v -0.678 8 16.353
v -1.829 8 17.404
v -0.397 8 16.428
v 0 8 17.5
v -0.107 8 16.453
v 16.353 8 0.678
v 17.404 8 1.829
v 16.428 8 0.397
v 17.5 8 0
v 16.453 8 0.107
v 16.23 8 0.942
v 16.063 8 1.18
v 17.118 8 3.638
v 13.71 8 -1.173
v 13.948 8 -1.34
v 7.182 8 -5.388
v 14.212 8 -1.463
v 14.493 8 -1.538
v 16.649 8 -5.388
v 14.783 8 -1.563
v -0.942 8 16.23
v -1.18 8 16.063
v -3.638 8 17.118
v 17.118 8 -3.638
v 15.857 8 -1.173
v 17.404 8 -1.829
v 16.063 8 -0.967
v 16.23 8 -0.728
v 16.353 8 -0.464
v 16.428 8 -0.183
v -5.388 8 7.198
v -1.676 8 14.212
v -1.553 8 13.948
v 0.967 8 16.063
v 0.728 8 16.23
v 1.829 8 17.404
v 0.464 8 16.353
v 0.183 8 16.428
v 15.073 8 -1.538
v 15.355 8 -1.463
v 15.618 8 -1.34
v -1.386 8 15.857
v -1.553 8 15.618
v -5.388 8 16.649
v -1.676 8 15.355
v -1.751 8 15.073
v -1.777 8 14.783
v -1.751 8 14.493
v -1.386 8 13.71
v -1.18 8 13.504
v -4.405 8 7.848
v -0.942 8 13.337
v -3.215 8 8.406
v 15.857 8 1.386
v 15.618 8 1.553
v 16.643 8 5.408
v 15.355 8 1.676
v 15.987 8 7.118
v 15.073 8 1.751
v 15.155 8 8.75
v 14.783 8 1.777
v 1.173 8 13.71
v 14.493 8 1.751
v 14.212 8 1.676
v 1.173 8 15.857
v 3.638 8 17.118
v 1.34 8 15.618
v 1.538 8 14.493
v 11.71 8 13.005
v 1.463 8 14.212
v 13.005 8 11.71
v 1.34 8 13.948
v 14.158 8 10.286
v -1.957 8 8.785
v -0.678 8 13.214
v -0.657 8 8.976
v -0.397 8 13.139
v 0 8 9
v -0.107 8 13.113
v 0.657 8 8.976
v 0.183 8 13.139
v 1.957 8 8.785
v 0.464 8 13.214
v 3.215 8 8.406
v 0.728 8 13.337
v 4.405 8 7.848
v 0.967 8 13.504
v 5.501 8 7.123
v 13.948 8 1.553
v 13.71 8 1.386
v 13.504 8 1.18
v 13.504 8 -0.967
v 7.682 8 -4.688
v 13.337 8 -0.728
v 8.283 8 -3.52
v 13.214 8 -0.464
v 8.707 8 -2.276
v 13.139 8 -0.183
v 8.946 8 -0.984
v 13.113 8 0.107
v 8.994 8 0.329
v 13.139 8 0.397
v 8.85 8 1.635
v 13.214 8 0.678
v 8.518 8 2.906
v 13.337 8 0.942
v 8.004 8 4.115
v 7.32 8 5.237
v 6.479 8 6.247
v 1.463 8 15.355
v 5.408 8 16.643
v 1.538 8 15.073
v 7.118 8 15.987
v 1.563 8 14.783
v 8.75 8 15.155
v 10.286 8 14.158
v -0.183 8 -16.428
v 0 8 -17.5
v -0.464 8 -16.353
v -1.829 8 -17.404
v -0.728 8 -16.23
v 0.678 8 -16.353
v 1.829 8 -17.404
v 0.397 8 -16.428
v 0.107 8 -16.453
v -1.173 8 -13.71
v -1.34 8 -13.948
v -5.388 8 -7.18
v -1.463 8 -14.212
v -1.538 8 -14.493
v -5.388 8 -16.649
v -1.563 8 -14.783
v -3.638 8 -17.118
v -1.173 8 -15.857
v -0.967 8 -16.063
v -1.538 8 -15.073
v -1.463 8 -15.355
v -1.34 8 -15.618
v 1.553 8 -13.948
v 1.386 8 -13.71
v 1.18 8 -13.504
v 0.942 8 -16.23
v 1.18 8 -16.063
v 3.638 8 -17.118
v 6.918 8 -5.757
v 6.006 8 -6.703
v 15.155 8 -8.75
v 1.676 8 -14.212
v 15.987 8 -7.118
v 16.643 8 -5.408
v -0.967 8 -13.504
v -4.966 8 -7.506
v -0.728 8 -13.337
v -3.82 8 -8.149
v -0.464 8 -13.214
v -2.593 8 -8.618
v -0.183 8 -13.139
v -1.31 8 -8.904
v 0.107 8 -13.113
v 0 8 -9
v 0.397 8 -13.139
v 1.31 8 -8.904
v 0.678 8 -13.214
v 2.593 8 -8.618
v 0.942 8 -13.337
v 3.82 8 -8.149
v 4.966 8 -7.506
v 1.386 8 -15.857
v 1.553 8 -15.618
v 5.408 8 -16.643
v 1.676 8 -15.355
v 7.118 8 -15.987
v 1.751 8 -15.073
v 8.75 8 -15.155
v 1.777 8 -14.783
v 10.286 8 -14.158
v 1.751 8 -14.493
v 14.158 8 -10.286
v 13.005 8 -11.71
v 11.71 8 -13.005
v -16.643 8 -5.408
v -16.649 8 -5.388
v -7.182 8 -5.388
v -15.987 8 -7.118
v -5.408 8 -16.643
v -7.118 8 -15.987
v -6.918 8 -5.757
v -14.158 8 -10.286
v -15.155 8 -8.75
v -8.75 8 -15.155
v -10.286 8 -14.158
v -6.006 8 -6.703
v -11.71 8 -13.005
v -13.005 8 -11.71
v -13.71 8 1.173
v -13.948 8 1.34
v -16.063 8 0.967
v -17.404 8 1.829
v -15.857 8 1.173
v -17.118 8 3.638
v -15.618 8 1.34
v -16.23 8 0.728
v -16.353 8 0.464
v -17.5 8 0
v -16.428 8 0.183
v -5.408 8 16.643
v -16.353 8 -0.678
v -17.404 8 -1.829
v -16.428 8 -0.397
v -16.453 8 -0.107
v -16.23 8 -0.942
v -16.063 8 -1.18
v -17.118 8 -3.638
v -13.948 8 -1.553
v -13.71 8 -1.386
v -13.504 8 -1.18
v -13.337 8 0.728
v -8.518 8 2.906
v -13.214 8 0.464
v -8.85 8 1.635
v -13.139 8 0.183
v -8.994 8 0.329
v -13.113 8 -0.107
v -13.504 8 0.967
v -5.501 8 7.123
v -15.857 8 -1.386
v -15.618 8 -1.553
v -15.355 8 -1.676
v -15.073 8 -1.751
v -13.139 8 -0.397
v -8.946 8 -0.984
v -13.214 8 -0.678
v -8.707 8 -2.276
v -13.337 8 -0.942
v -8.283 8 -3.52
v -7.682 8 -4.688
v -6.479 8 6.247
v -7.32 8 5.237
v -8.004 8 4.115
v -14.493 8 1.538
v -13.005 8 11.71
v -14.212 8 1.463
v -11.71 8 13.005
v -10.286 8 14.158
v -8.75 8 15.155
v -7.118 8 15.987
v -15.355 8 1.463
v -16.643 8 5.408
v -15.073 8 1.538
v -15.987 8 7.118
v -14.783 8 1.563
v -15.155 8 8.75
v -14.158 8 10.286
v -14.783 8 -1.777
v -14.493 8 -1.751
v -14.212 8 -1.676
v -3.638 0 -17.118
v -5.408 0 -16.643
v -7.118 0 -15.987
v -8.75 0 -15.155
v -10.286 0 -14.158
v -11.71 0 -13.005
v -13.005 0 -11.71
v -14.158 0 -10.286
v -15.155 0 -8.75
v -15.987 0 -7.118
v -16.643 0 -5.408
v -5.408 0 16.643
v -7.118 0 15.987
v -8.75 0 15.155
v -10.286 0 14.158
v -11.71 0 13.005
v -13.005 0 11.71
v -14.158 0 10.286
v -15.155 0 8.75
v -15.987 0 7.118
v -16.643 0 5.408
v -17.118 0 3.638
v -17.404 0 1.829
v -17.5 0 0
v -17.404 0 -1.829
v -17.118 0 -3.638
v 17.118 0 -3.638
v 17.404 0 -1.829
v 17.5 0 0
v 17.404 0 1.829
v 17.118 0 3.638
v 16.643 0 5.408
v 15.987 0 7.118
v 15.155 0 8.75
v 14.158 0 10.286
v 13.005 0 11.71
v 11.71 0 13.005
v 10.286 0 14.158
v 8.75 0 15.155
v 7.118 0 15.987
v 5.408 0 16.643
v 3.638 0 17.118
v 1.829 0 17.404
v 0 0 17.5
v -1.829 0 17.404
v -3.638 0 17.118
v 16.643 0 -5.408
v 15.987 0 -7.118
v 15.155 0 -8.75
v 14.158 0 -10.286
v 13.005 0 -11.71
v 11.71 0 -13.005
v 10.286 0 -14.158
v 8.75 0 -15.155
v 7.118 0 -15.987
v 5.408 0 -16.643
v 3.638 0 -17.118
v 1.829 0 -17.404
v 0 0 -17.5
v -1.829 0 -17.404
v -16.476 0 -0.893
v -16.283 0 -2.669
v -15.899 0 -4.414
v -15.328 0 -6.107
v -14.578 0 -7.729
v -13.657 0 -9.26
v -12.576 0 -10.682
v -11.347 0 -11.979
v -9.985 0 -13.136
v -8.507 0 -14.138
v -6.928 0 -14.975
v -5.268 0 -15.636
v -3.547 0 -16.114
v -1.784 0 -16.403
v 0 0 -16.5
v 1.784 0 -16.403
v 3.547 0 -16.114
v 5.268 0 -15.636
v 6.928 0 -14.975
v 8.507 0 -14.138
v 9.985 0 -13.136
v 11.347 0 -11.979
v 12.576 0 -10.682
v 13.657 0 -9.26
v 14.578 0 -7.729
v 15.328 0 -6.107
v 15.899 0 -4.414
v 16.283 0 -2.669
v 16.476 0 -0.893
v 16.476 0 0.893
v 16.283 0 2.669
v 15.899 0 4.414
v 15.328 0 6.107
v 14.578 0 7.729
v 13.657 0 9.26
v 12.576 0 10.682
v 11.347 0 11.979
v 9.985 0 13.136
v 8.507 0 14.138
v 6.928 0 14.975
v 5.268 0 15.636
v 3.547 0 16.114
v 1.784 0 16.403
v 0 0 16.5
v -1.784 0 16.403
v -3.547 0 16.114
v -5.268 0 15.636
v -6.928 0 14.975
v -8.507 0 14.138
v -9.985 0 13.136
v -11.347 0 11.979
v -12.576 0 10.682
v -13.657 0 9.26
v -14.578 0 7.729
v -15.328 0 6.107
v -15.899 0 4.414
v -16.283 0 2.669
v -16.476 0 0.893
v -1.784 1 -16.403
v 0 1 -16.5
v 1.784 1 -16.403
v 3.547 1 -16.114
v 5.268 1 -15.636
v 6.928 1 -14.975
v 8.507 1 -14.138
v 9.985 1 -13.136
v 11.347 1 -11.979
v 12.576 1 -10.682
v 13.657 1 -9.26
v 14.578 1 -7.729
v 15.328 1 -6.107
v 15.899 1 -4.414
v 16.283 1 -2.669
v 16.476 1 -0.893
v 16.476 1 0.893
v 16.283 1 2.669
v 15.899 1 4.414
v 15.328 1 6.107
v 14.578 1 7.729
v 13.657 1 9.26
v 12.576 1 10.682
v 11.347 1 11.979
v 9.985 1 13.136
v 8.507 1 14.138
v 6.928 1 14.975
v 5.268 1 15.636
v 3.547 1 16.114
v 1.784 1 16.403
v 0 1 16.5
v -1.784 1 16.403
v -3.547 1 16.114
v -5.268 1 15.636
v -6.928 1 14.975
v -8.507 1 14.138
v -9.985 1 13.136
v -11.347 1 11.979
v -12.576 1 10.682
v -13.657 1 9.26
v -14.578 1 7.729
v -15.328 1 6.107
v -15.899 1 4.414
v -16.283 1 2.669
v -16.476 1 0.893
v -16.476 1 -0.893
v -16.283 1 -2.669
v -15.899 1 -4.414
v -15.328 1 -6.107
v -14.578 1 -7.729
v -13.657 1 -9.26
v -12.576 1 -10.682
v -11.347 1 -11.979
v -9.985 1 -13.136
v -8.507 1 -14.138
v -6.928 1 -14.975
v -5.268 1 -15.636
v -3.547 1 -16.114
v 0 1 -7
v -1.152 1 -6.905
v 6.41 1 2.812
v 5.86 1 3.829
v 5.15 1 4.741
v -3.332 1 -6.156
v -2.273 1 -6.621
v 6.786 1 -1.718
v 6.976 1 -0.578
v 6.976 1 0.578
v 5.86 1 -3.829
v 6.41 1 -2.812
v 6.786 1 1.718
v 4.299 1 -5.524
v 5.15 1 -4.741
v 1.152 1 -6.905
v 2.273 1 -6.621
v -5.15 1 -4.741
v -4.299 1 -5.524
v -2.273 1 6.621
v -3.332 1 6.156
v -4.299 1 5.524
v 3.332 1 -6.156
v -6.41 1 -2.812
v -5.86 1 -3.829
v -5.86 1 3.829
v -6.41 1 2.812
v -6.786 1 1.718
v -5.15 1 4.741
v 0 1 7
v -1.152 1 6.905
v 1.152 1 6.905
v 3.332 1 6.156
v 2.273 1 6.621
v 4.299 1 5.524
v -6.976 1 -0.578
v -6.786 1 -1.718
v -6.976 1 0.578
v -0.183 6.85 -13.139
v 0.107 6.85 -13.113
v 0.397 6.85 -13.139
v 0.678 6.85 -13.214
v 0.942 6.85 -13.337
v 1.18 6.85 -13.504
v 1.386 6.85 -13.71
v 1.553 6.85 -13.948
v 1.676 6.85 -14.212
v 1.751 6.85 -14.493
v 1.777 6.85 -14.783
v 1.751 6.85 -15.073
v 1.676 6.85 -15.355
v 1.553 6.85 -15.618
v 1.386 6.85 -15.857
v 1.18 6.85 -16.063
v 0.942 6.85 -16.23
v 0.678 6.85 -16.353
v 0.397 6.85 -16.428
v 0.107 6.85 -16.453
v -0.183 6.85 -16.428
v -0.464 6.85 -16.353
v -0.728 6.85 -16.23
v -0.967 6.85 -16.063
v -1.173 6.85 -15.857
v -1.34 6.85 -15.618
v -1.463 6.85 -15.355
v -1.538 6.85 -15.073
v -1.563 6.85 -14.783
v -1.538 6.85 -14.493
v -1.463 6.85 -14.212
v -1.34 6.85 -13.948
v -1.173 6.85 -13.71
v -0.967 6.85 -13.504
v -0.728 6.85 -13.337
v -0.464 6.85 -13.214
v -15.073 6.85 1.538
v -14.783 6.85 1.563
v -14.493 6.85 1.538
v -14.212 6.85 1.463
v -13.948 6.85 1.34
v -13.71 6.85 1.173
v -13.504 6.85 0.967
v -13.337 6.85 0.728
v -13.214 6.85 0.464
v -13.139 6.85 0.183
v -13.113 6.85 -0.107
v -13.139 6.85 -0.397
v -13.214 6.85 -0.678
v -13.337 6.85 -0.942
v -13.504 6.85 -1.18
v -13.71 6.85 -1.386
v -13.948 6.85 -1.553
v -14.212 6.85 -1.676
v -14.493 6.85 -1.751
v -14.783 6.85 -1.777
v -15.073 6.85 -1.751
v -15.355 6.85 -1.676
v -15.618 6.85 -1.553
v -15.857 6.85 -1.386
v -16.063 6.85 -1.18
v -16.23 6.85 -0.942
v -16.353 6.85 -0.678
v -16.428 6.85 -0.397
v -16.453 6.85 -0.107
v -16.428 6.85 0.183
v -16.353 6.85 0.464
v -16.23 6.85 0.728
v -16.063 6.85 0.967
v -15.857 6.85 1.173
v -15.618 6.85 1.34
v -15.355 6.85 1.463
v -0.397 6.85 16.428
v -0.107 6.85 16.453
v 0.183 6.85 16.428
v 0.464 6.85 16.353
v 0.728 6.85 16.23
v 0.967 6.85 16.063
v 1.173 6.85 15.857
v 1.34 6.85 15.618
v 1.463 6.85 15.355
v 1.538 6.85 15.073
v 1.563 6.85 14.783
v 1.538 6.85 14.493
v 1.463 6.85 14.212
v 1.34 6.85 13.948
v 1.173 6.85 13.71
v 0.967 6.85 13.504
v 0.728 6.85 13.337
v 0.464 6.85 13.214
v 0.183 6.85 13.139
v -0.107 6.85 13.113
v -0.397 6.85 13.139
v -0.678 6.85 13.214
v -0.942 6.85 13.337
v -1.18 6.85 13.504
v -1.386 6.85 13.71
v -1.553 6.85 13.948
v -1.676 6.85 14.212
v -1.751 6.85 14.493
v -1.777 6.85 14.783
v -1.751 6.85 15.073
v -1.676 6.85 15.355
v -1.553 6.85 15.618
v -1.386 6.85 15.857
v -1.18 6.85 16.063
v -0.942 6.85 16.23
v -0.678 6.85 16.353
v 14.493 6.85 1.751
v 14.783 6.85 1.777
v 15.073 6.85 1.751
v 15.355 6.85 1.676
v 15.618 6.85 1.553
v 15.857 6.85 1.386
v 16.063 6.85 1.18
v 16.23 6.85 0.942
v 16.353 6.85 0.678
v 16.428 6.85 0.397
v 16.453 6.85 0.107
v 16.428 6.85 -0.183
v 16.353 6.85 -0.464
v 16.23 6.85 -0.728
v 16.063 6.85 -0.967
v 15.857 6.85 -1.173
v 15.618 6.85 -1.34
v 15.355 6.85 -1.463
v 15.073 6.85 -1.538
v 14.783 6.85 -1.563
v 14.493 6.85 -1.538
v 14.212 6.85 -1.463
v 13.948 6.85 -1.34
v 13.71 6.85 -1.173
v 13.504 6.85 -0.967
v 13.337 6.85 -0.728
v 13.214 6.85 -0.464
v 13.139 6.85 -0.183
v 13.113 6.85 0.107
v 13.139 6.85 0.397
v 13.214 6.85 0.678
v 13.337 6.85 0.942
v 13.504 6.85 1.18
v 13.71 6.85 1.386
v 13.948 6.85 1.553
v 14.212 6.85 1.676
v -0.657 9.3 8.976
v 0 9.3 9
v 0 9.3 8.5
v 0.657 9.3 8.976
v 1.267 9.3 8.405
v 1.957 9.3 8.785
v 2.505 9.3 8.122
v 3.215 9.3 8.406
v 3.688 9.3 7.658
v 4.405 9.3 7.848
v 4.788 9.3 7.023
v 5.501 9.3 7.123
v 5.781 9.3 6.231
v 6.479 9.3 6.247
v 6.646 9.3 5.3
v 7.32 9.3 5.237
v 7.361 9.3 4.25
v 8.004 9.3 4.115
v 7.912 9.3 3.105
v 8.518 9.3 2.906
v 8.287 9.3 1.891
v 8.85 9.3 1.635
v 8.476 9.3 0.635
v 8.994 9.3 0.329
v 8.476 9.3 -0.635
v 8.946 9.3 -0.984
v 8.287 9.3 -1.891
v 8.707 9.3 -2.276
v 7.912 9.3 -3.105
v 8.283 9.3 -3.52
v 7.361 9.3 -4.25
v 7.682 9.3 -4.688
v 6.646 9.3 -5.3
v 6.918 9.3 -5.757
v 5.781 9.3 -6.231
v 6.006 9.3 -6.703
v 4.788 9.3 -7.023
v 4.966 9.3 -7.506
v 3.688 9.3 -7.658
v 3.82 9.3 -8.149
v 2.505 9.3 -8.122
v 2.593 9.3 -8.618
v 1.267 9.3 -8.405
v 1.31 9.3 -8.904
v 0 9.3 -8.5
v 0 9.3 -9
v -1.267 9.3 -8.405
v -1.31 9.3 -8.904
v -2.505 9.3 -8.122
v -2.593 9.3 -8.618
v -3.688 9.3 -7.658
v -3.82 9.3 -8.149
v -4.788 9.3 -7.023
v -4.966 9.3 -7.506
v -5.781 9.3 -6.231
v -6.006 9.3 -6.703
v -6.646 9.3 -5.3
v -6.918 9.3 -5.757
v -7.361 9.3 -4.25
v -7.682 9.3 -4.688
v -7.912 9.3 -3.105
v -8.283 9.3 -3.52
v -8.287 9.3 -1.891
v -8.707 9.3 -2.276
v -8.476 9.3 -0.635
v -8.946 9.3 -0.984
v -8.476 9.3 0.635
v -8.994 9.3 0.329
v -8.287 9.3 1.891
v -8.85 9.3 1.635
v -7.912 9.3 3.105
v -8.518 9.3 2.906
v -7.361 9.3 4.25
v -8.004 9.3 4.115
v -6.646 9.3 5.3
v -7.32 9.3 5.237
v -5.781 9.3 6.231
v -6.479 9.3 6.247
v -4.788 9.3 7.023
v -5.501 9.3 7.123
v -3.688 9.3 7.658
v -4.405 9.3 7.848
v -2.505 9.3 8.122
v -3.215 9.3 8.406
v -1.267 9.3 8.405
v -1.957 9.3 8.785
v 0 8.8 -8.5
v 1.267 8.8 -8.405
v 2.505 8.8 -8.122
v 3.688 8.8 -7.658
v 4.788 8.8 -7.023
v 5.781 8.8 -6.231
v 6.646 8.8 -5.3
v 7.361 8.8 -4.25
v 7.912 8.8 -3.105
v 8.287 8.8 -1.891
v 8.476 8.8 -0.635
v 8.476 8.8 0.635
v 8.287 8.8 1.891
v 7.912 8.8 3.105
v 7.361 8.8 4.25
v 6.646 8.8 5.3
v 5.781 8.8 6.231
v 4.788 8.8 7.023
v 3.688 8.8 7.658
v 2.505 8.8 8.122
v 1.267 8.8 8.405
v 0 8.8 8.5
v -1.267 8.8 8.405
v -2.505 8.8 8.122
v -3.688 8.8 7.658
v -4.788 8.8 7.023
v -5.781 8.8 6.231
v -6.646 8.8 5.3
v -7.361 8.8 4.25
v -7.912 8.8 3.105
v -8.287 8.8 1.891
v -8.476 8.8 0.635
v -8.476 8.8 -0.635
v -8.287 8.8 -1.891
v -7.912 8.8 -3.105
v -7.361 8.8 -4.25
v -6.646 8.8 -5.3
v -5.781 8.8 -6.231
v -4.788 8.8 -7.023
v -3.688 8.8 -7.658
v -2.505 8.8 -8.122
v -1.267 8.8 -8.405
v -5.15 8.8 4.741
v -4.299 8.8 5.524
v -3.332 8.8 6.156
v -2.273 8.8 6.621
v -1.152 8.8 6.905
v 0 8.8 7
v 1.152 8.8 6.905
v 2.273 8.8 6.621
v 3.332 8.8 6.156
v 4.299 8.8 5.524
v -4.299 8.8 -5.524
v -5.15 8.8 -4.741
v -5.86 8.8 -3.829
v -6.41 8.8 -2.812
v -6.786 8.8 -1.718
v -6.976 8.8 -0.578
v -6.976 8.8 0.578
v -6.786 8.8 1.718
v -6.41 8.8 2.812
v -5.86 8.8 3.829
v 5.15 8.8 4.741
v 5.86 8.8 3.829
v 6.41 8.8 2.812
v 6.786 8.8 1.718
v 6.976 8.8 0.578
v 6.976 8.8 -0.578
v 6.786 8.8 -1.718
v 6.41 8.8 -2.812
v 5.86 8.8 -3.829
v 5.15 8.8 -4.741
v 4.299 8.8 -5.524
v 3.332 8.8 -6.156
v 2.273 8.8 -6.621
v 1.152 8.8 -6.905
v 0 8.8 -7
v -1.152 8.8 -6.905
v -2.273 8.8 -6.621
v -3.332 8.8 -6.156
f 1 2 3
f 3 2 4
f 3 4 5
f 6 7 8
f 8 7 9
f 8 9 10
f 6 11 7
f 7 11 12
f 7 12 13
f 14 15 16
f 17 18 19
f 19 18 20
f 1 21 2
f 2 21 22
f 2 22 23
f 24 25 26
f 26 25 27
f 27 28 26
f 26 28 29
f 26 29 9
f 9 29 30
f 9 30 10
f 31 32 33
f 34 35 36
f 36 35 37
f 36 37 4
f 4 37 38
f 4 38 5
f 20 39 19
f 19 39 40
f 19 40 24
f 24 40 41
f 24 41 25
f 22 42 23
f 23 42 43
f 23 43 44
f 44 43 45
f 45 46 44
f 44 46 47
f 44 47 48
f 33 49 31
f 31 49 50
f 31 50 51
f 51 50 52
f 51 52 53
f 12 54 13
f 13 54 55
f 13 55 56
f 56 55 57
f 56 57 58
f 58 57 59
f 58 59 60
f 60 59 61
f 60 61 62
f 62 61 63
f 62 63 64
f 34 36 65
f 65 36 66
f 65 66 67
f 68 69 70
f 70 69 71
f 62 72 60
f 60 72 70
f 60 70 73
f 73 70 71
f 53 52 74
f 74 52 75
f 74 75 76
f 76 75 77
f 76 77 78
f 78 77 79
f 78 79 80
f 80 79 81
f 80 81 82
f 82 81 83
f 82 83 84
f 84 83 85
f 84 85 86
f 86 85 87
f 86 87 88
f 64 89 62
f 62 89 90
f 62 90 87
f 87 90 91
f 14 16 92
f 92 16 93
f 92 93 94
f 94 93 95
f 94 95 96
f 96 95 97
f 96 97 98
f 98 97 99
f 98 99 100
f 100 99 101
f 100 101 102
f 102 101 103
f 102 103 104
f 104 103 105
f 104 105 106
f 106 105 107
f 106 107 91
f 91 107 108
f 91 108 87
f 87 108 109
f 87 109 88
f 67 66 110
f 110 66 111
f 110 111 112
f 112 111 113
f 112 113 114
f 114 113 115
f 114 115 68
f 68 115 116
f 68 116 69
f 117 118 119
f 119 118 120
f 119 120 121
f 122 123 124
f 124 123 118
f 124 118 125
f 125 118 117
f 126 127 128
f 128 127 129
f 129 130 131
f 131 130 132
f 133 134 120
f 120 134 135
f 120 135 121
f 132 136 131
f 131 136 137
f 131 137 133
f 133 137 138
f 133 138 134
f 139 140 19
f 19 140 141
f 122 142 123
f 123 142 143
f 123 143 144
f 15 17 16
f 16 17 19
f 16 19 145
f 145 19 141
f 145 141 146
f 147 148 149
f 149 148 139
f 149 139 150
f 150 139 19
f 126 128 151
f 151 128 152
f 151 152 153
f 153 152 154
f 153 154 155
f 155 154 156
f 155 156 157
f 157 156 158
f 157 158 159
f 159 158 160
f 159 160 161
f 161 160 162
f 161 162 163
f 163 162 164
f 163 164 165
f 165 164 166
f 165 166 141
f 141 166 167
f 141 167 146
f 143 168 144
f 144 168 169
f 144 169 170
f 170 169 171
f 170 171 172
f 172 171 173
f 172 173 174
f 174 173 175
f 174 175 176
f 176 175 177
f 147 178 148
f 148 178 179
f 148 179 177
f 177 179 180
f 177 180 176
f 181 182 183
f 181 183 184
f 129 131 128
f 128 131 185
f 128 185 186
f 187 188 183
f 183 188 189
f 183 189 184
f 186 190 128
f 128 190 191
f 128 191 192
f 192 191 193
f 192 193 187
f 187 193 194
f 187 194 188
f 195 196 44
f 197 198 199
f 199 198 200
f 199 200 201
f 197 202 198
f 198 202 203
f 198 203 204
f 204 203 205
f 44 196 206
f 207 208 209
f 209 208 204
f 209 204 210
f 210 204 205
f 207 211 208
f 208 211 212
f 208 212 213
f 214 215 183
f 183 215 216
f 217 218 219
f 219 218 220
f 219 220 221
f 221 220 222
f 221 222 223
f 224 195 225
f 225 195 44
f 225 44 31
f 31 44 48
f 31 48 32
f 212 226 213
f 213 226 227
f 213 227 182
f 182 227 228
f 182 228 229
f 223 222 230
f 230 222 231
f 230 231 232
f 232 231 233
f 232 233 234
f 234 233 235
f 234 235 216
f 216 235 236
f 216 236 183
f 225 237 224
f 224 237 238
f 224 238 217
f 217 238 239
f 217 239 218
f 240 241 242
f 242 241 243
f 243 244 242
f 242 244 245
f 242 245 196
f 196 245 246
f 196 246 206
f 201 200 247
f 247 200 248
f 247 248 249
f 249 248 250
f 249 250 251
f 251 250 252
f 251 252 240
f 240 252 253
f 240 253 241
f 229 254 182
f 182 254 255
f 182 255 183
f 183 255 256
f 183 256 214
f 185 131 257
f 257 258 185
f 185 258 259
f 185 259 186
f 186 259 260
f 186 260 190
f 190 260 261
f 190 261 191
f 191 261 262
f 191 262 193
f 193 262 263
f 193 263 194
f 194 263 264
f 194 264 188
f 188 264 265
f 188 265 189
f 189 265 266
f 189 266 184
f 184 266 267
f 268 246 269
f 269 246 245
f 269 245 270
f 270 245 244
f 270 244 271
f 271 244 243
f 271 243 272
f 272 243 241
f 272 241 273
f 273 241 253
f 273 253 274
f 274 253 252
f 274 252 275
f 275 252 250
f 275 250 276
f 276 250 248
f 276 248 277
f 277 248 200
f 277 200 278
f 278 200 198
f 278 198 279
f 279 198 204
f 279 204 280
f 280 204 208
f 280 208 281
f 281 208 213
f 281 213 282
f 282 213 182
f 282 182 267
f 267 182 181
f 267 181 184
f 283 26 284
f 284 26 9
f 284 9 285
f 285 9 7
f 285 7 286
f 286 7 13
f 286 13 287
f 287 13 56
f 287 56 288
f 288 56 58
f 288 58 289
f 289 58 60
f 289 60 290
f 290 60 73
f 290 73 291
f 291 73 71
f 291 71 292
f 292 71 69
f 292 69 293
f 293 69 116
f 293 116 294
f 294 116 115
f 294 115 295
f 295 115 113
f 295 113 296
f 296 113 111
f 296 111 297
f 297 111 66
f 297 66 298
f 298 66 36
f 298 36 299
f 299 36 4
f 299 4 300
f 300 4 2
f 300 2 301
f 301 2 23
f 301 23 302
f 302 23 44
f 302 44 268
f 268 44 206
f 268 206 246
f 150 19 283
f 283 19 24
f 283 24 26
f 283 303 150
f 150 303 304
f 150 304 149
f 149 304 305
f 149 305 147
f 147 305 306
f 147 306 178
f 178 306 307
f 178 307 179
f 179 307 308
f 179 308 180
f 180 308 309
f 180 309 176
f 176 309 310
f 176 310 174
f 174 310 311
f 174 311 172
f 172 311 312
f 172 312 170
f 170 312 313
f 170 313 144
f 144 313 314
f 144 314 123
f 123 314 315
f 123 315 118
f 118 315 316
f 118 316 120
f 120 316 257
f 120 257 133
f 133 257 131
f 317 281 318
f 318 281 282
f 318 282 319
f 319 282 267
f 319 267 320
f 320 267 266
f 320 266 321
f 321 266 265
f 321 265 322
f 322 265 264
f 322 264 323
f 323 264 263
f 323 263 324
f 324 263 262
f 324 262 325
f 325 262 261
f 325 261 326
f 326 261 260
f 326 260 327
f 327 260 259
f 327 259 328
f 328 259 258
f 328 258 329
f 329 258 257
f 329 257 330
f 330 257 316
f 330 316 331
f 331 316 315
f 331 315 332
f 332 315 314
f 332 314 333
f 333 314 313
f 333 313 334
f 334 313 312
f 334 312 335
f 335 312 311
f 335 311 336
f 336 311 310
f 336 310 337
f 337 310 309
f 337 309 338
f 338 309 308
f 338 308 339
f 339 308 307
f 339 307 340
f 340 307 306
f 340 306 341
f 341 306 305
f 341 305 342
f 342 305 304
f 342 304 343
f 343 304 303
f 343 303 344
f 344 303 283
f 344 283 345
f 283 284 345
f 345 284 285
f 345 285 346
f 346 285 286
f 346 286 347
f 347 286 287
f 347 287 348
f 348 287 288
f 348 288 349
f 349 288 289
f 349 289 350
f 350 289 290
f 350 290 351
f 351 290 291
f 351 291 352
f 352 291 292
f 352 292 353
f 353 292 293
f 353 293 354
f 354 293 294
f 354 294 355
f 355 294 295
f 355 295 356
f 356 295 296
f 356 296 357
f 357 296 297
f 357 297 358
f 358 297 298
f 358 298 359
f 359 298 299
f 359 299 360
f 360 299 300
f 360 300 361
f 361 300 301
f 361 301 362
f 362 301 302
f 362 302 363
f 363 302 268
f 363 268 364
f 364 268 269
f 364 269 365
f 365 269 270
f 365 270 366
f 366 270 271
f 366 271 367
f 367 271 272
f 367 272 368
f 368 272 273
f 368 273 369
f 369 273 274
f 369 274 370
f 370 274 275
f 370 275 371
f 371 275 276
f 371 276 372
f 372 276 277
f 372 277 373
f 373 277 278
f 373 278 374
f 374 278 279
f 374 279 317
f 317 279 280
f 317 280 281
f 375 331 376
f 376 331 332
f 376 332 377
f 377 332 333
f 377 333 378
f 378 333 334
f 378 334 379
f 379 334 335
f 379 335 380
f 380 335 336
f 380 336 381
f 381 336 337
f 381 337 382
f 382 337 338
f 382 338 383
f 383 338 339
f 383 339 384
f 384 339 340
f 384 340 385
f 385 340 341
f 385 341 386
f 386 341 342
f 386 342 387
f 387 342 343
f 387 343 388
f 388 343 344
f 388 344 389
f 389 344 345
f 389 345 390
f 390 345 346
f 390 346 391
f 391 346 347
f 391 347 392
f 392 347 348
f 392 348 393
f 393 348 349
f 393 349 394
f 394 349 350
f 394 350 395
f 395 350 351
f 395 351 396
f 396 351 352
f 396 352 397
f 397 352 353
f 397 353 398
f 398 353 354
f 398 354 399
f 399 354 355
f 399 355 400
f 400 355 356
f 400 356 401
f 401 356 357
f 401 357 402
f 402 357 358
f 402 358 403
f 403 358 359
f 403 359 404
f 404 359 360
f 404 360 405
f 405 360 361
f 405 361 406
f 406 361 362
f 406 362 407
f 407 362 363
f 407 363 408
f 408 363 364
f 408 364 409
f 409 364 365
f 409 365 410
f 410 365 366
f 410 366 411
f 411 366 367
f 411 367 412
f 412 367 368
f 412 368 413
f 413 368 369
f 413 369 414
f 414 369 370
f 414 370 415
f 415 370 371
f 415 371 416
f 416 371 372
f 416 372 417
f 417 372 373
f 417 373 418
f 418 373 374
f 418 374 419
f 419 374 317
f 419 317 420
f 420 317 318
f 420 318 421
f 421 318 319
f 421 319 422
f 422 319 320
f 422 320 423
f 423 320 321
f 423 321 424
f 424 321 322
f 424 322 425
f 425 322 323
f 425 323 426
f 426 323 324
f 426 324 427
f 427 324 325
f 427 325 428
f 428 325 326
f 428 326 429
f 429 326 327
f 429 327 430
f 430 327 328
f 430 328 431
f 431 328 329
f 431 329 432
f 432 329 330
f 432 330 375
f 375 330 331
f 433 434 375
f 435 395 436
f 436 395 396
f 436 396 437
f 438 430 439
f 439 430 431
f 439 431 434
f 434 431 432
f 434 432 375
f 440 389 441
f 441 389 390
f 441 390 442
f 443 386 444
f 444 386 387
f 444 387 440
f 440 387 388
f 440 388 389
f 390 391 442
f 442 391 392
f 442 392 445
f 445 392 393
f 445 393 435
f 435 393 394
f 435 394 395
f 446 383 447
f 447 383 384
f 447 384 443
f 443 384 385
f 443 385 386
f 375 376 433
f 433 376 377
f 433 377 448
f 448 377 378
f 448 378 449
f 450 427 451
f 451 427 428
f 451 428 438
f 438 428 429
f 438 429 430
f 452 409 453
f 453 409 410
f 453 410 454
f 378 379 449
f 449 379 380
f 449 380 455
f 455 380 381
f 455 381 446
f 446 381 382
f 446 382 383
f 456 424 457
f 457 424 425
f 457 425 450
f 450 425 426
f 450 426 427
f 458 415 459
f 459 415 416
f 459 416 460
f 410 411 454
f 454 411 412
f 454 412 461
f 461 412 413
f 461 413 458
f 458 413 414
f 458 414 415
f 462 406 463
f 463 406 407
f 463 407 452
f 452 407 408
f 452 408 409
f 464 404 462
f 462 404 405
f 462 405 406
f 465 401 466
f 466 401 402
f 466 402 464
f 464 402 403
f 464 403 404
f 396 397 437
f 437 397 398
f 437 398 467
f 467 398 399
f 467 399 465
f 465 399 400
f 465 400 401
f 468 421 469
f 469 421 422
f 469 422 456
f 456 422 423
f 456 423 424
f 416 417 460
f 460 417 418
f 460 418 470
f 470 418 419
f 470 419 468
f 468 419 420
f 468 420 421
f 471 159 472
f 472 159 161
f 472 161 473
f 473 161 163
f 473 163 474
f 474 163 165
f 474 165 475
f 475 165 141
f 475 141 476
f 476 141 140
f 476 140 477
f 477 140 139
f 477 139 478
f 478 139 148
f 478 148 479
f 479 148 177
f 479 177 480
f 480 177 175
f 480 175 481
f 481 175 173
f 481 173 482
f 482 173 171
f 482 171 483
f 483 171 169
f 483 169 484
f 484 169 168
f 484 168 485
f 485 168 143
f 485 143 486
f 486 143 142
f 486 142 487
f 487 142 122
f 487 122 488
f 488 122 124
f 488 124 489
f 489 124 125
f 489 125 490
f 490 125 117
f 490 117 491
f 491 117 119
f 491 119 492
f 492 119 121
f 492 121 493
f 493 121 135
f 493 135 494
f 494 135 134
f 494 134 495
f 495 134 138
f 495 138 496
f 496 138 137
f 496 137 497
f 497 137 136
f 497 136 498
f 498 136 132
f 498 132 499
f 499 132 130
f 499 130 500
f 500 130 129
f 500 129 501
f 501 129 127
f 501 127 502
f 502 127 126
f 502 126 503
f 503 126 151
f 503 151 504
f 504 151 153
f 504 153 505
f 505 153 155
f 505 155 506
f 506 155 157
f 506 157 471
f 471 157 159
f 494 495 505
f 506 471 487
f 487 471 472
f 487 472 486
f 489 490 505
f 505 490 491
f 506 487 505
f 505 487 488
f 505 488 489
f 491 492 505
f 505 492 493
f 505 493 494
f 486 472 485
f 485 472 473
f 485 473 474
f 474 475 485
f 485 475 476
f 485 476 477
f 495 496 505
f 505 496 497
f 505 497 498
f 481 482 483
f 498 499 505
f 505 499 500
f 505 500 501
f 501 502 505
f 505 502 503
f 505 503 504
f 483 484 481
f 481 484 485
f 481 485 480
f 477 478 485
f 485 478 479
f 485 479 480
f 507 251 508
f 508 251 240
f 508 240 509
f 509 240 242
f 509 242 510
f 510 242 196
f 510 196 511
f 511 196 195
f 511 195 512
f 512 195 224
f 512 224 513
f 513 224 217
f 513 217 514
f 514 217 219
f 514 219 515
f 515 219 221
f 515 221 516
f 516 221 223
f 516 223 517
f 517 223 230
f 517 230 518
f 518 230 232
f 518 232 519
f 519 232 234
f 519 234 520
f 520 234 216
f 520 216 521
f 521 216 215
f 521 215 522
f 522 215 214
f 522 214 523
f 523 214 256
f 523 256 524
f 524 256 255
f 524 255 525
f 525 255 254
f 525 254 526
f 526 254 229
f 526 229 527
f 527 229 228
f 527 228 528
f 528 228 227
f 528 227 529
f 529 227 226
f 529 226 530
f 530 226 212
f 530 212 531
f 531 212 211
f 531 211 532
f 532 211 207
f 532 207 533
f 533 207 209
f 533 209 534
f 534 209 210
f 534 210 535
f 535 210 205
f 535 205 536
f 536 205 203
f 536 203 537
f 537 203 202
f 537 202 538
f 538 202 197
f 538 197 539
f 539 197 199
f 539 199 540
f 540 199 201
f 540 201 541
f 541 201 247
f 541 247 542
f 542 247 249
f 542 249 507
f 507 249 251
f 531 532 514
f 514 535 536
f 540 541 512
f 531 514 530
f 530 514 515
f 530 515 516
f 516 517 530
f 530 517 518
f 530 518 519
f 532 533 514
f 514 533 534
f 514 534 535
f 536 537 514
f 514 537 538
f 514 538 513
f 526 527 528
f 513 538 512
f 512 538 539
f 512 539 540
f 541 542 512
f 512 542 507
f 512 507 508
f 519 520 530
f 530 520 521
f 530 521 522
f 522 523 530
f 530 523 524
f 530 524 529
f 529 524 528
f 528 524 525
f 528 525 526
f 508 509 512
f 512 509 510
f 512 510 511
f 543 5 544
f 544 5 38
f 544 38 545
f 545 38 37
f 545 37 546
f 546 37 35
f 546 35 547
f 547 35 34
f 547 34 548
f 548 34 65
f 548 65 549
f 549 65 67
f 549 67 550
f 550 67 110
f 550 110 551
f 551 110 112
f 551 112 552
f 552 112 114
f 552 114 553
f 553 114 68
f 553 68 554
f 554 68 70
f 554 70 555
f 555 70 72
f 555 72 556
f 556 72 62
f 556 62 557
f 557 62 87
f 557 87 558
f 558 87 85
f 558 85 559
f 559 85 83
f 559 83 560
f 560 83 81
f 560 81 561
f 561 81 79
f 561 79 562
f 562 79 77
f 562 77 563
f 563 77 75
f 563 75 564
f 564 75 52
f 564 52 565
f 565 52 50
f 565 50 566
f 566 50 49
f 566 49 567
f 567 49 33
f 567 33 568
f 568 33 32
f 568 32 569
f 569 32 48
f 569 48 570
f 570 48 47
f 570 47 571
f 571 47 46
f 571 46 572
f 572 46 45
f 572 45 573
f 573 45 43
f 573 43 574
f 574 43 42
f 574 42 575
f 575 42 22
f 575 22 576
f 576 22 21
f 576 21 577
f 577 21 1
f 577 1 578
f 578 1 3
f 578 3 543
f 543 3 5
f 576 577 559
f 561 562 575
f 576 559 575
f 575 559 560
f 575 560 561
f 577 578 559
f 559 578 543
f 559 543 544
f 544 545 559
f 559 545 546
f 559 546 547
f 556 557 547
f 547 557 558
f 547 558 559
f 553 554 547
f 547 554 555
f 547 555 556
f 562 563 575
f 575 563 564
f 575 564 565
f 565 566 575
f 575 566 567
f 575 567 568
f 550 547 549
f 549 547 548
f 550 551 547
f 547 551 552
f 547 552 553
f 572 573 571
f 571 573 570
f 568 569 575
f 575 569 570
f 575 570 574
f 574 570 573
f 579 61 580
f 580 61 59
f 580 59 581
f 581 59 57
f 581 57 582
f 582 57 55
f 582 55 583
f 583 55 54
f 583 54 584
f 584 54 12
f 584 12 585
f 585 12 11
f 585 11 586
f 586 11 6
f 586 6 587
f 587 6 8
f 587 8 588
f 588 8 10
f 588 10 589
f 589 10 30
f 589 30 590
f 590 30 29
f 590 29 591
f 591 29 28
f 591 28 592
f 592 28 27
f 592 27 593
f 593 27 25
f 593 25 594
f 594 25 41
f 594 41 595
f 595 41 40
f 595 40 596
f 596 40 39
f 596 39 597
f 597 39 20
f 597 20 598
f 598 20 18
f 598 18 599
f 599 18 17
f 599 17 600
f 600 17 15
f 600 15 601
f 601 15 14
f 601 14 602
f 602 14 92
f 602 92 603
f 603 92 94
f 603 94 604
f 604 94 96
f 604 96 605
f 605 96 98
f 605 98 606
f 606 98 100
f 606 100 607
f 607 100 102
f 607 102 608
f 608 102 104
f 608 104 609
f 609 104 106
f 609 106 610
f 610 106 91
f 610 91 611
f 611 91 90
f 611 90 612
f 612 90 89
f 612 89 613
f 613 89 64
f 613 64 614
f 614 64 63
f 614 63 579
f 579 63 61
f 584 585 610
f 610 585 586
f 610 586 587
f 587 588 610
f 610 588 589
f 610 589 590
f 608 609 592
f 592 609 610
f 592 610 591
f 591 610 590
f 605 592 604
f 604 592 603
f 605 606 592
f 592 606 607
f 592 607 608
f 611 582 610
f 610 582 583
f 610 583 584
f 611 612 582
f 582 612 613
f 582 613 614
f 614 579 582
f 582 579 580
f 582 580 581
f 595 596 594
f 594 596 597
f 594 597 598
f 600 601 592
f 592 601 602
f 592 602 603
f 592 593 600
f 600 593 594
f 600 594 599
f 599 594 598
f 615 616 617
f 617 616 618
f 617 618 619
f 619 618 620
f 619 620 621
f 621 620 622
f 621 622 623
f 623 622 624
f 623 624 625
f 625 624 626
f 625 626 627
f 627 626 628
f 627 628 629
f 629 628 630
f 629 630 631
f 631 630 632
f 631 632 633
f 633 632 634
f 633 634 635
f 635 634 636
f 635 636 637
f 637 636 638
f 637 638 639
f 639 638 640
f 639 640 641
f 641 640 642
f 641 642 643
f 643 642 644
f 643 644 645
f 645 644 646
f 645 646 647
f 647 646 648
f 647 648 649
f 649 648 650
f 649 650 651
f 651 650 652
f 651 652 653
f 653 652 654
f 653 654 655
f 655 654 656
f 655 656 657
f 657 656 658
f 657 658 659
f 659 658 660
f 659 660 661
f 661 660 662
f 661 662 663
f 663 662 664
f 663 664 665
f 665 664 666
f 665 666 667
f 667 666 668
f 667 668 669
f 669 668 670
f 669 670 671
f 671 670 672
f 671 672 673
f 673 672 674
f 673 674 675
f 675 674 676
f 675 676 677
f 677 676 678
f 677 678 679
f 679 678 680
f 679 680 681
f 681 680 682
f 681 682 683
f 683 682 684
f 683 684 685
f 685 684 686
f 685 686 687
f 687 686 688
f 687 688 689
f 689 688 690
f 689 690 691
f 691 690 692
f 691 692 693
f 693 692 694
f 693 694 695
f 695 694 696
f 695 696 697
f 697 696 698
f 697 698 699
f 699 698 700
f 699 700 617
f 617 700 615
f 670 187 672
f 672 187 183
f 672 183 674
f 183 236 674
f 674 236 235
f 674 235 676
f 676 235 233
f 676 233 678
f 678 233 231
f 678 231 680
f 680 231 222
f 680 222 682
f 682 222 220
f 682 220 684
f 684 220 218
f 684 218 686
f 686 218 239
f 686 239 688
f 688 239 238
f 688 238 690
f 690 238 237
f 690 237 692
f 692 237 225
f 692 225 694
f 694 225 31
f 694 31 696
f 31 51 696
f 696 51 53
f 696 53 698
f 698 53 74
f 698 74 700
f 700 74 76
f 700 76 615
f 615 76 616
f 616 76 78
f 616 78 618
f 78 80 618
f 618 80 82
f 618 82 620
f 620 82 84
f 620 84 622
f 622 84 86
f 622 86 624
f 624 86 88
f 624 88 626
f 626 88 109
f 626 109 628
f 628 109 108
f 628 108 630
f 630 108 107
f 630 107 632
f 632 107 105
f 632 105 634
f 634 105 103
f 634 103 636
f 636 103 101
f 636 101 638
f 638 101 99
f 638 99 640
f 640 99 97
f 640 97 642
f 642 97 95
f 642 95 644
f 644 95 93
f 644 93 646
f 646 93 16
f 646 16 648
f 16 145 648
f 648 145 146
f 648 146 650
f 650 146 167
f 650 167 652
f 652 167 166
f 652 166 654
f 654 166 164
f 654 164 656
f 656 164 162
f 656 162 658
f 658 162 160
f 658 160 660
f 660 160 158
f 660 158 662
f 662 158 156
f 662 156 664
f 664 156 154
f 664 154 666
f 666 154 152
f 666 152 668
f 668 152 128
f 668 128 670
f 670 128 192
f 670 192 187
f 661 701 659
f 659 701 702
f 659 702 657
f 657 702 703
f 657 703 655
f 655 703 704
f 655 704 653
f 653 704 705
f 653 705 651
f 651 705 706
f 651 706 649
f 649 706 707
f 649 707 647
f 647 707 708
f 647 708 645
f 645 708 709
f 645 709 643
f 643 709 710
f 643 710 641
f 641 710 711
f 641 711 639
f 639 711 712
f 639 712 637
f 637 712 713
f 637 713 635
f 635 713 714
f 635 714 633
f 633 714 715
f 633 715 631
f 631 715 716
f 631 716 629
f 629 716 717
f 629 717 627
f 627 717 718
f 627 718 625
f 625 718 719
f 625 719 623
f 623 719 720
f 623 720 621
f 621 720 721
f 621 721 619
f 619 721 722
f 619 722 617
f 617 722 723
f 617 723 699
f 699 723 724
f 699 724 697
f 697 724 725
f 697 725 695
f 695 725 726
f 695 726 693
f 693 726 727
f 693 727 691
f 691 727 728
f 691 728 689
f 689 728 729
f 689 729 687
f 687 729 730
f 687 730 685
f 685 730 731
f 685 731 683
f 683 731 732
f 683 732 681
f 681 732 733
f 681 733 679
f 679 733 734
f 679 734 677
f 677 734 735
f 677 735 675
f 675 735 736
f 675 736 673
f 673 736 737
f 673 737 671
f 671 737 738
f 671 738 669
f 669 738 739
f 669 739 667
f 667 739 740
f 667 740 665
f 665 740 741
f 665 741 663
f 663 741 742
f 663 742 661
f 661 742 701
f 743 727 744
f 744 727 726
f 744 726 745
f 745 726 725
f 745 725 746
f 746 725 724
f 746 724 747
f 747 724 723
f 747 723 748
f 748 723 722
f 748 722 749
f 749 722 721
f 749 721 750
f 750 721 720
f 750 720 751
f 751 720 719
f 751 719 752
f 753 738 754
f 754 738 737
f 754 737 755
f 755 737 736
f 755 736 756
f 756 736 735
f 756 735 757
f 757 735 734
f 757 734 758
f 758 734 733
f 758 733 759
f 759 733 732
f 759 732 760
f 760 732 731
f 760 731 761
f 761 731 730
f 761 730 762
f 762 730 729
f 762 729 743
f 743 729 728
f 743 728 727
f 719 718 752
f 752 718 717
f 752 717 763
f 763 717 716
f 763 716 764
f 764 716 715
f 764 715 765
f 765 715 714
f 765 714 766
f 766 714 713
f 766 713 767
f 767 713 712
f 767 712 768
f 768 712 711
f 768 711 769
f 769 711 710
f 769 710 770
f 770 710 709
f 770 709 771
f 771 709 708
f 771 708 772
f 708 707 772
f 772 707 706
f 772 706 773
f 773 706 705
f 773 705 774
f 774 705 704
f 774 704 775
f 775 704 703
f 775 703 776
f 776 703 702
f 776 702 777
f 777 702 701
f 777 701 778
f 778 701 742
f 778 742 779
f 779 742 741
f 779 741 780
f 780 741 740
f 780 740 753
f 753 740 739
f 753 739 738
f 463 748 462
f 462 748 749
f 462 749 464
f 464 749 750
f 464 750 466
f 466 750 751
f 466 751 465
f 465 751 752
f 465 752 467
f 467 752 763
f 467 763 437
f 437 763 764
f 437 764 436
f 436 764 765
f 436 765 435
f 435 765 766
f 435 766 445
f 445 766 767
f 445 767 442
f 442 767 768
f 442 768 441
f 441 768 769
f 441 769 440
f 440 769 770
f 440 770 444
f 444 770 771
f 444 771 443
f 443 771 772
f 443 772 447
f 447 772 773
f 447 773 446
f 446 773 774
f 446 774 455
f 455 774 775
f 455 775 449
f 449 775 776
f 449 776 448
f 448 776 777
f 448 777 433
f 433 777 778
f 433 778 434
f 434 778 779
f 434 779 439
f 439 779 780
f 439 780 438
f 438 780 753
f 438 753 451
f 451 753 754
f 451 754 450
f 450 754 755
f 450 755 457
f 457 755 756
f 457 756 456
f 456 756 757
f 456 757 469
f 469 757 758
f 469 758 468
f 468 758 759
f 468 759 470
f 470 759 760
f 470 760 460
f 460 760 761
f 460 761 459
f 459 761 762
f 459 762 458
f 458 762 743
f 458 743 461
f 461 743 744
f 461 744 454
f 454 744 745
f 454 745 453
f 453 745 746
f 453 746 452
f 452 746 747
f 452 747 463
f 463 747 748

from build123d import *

# Parameters (mm, degrees)
SKETCH1_R           = 17.5
BOSS_EXTRUDE1_DEPTH = 8
SKETCH5_R           = 16.5
CUT_EXTRUDE2_DEPTH  = 1
SKETCH11_R          = 1.67
CUT_EXTRUDE5_DEPTH  = 1.15
CIRPATTERN1_COUNT   = 4
SKETCH13_R          = 9
SKETCH13_R_2        = 8.5
BOSS_EXTRUDE3_DEPTH = 1.3
SKETCH12_R          = 8.6
BOSS_EXTRUDE2_DEPTH = 0.8
SKETCH14_R          = 7
CUT_EXTRUDE6_DEPTH  = 27.266708968


with BuildPart() as part:
    # Sketch1 → Boss-Extrude1 (new body)
    with BuildSketch(Plane(origin=(0, 0, 0), x_dir=(1, 0, 0), z_dir=(0, 1, 0))):
        with Locations(Location((0, 0, 0), (0, 0, 270))):
            Circle(SKETCH1_R)
    extrude(amount=BOSS_EXTRUDE1_DEPTH)

    # Sketch5 → Cut-Extrude2 (cut)
    with BuildSketch(Plane.XZ):
        with Locations(Location((0, 0, 0), (0, 0, 270))):
            Circle(SKETCH5_R)
    extrude(amount=-CUT_EXTRUDE2_DEPTH, mode=Mode.SUBTRACT)

    # Sketch11 → Cut-Extrude5 (cut)
    with BuildSketch(Plane(origin=(0, 8, 0), x_dir=(1, 0, 0), z_dir=(0, 1, 0))):
        with Locations(Location((0.106708516, 14.783412681, 0), (0, 0, 270))):
            Circle(SKETCH11_R)
    cut_extrude5 = extrude(amount=-CUT_EXTRUDE5_DEPTH, mode=Mode.SUBTRACT)

    # CirPattern1: Cut-Extrude5 ×4 about axis
    cirpattern1_axis = Axis((0, 0, 0), (0, 1, 0))
    for i in range(1, CIRPATTERN1_COUNT):
        add(cut_extrude5.rotate(cirpattern1_axis, i * 360 / CIRPATTERN1_COUNT), mode=Mode.SUBTRACT)

    # Sketch13 → Boss-Extrude3 (add)
    with BuildSketch(Plane(origin=(0, 8, 0), x_dir=(1, 0, 0), z_dir=(0, 1, 0))):
        with Locations(Location((0, 0, 0), (0, 0, 270))):
            Circle(SKETCH13_R)
        with Locations(Location((0, 0, 0), (0, 0, 270))):
            Circle(SKETCH13_R_2, mode=Mode.SUBTRACT)
    extrude(amount=BOSS_EXTRUDE3_DEPTH)

    # Sketch12 → Boss-Extrude2 (add)
    with BuildSketch(Plane(origin=(0, 8, 0), x_dir=(1, 0, 0), z_dir=(0, 1, 0))):
        Circle(SKETCH12_R)
    extrude(amount=BOSS_EXTRUDE2_DEPTH)

    # Sketch14 → Cut-Extrude6 (cut, through all)
    with BuildSketch(Plane(origin=(0, 8.8, 0), x_dir=(1, 0, 0), z_dir=(0, 1, 0))):
        with Locations(Location((0, 0, 0), (0, 0, 270))):
            Circle(SKETCH14_R)
    extrude(amount=-CUT_EXTRUDE6_DEPTH, mode=Mode.SUBTRACT)


solid = part.part
